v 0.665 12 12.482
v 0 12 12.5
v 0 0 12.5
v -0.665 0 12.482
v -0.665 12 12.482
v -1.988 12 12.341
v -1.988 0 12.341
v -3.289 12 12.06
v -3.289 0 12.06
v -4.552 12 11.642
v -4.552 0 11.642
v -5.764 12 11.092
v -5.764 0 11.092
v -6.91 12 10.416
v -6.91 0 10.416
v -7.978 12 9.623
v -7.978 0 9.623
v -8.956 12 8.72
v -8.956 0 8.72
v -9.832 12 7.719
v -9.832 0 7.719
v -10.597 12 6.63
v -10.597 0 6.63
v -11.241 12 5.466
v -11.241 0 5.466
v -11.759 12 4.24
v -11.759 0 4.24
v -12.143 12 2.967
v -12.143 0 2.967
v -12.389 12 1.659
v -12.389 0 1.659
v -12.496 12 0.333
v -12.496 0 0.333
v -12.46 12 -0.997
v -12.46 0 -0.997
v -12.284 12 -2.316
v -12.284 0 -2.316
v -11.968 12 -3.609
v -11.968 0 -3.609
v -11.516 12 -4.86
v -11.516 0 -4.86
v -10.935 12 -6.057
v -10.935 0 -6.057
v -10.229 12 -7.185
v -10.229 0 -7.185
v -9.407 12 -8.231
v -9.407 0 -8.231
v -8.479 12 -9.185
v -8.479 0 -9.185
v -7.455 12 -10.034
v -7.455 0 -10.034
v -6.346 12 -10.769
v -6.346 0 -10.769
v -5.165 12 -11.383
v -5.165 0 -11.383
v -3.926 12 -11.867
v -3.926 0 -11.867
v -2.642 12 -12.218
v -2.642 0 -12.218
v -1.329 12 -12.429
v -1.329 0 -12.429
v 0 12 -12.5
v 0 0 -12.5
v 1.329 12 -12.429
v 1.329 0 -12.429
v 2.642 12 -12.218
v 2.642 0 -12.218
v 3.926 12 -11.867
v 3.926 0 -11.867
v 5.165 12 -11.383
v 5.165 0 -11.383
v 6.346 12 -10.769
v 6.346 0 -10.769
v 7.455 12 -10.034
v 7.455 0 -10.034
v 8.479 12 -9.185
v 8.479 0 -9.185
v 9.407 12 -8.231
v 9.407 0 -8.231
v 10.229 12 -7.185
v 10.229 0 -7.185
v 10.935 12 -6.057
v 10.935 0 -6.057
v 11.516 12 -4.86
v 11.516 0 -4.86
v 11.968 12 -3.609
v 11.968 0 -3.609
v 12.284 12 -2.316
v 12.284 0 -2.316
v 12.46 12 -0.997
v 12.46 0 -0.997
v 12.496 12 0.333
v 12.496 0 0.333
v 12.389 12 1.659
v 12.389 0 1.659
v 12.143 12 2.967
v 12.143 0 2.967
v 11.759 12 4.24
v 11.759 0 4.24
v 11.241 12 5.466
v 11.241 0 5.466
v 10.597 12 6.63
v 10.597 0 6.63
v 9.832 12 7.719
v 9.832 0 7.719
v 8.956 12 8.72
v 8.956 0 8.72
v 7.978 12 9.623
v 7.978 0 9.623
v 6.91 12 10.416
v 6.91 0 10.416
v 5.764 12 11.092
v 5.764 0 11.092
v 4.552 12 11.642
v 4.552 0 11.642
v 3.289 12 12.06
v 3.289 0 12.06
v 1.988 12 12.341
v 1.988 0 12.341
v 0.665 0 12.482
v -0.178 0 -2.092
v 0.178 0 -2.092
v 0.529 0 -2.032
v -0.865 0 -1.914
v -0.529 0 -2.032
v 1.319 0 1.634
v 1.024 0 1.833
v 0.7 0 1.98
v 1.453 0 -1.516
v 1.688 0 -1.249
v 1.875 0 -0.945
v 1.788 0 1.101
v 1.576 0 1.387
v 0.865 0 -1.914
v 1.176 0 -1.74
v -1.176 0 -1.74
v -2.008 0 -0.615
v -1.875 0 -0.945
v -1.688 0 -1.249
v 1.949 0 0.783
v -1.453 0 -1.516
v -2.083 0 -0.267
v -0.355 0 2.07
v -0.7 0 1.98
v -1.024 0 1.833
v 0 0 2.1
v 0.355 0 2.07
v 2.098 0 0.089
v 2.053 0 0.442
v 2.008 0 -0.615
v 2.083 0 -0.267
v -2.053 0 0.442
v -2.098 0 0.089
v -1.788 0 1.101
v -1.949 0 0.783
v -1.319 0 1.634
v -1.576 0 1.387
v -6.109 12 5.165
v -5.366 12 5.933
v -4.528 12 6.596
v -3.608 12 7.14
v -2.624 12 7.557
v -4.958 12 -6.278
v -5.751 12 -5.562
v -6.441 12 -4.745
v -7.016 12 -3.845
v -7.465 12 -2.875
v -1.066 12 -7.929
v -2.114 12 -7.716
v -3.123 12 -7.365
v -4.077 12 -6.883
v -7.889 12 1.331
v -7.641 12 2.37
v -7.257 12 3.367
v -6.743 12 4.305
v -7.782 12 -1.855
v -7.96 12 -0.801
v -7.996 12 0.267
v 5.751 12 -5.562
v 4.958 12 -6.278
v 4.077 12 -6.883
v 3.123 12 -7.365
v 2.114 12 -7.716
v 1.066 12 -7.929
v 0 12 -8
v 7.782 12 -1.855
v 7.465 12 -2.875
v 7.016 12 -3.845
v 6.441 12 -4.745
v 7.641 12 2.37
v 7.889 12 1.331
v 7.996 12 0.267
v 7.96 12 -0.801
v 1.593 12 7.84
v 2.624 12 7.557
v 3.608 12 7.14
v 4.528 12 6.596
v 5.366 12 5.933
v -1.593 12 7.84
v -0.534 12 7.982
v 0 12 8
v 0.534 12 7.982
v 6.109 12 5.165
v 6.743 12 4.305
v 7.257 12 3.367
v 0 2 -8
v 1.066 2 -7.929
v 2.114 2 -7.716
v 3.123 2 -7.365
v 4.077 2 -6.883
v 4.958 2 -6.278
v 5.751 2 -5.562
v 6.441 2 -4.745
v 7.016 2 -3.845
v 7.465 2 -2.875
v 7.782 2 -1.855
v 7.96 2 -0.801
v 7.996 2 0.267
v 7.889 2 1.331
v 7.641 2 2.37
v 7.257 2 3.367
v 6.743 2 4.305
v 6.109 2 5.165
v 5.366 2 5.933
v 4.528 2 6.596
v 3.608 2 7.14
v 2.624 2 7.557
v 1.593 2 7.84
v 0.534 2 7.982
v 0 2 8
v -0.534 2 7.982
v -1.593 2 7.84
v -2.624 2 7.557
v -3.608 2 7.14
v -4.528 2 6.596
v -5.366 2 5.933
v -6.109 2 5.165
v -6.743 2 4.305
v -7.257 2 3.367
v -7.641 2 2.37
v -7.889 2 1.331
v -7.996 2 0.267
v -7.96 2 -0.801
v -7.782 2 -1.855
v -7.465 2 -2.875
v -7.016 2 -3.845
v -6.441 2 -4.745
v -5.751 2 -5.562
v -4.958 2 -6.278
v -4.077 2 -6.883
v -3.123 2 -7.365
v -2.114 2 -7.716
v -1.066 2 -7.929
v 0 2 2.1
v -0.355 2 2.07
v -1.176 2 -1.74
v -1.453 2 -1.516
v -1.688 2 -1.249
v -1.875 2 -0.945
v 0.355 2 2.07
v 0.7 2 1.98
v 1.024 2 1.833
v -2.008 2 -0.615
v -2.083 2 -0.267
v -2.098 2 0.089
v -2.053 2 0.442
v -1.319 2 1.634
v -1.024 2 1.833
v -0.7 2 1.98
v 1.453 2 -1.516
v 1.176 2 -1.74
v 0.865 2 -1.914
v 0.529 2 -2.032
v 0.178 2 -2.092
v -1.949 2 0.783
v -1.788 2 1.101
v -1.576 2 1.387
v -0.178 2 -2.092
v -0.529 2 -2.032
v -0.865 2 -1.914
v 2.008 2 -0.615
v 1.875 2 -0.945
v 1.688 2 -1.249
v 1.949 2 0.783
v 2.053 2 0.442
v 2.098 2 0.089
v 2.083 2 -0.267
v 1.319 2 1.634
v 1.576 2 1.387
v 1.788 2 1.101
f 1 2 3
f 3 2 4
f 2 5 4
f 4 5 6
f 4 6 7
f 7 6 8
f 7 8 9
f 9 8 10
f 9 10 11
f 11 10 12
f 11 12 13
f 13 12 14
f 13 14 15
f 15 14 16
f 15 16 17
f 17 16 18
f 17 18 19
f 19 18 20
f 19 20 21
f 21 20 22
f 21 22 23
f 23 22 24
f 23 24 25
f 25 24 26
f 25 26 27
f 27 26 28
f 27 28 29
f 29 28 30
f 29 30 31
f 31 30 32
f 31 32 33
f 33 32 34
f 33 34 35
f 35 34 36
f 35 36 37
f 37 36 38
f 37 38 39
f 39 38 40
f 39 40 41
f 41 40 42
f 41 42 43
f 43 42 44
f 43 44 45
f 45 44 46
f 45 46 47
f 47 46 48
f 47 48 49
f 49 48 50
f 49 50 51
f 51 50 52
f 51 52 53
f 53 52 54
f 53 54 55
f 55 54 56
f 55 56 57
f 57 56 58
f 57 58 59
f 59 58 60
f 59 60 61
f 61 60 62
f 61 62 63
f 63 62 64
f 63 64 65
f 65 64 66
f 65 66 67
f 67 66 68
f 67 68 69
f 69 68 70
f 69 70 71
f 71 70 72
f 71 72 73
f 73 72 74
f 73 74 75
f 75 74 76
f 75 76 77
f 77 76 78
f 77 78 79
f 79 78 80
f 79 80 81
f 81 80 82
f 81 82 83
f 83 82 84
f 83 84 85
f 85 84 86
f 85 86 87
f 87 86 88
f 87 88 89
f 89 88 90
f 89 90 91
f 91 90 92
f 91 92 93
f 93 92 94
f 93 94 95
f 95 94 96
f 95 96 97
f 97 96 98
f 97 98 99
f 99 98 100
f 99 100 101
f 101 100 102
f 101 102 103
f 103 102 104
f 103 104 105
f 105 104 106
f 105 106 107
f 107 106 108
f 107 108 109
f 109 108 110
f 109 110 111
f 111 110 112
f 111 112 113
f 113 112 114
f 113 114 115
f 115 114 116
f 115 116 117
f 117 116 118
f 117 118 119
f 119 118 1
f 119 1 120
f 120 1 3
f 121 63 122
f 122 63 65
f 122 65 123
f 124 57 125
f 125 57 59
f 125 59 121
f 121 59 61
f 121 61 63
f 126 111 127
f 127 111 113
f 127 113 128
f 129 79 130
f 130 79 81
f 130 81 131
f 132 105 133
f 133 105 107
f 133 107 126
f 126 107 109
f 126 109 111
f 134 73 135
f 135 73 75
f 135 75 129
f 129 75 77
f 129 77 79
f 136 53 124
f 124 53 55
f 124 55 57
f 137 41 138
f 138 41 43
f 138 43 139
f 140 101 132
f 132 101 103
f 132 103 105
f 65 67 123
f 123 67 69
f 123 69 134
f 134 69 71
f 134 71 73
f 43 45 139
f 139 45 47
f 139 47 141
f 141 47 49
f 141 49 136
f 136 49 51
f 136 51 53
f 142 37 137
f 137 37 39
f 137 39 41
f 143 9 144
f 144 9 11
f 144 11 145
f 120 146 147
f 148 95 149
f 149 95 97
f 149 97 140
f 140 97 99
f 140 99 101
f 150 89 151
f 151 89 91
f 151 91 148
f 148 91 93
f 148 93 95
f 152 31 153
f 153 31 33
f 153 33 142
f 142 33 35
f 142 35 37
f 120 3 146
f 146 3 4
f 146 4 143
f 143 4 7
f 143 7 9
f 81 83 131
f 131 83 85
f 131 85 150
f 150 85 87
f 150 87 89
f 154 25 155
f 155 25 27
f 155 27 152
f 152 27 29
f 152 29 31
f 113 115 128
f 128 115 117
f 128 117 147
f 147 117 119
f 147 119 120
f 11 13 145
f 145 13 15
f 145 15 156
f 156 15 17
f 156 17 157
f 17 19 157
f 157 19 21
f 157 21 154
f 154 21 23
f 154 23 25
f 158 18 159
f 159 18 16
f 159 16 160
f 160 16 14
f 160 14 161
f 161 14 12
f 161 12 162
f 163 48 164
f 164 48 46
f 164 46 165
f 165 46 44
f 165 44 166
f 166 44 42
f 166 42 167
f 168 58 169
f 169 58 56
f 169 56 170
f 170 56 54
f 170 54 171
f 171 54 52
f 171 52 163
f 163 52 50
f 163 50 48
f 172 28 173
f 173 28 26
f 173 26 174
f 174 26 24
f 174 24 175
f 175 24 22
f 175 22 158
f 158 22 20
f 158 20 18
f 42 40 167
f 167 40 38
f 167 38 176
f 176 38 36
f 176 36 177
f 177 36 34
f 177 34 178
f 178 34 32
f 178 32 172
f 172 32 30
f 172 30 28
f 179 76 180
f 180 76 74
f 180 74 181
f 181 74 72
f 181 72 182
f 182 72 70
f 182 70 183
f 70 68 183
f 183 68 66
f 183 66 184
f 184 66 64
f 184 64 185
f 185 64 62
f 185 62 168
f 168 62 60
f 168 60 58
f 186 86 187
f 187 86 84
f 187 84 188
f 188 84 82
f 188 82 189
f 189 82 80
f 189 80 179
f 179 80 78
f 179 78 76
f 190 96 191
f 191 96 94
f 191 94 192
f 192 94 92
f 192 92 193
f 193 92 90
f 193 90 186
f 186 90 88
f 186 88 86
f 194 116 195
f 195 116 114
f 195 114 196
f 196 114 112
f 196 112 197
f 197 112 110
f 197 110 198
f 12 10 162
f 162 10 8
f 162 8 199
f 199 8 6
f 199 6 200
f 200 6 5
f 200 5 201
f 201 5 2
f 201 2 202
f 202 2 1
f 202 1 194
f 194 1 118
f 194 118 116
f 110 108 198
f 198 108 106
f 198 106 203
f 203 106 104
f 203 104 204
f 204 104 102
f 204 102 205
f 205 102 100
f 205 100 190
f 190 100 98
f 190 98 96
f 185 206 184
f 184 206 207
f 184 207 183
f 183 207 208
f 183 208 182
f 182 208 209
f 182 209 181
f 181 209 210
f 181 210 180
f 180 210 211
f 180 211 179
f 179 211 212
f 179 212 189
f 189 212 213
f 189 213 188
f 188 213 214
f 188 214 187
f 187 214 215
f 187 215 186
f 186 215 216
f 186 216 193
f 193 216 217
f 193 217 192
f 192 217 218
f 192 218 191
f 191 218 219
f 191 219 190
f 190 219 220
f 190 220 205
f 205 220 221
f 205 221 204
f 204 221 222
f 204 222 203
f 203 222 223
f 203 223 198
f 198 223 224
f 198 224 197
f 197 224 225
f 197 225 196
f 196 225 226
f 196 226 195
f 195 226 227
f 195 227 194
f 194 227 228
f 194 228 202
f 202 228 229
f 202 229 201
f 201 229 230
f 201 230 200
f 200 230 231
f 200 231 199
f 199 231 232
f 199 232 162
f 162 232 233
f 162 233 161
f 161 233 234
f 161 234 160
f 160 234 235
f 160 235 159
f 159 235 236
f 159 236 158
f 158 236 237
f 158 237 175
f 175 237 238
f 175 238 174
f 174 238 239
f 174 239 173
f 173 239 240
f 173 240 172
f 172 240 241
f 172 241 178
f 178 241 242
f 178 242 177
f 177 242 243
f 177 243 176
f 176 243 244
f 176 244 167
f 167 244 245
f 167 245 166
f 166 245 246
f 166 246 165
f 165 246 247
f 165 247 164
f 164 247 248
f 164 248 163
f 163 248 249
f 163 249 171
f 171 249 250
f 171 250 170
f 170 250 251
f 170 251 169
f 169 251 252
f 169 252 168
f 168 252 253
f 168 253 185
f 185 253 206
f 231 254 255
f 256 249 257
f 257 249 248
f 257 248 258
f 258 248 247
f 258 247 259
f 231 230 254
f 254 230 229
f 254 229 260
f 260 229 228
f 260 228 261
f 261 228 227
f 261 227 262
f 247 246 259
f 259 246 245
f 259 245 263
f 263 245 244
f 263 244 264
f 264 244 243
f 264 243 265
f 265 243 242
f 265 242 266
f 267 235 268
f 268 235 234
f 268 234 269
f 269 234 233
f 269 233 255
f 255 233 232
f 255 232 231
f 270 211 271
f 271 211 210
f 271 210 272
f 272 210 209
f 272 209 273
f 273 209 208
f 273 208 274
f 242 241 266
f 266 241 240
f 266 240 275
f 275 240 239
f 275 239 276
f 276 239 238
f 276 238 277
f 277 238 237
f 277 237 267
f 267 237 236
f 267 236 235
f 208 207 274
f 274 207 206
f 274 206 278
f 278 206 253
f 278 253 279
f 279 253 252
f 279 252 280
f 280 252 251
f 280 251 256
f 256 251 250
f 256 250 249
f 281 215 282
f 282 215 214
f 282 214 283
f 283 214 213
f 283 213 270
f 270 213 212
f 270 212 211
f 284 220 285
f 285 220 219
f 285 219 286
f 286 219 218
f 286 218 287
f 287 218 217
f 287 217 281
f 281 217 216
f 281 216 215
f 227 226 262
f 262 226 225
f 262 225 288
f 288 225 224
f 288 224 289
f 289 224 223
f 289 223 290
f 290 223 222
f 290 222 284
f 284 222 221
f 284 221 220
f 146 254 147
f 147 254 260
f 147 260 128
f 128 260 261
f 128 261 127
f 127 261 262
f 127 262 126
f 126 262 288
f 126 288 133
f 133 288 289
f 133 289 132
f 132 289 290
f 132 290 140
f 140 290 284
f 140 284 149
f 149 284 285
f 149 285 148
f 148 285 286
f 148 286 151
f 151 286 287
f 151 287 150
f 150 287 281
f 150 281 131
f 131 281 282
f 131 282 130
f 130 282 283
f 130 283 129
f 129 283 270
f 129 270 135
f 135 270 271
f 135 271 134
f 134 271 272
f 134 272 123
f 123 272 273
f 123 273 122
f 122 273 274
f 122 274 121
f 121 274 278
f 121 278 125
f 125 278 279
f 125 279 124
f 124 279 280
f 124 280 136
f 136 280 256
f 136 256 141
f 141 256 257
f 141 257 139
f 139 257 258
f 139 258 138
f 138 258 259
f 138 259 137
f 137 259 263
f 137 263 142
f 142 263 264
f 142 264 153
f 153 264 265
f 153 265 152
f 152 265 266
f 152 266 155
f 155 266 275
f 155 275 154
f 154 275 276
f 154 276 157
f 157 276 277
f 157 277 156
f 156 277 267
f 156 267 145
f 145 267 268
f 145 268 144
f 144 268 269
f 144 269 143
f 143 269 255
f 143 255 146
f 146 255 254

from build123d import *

# Parameters (mm, degrees)
SKETCH1_R           = 12.5
BOSS_EXTRUDE1_DEPTH = 2
SKETCH2_R           = 12.5
SKETCH2_R_2         = 8
BOSS_EXTRUDE2_DEPTH = 10
SKETCH3_R           = 2.1
CUT_EXTRUDE1_DEPTH  = 10


with BuildPart() as part:
    # Sketch1 → Boss-Extrude1 (new body)
    with BuildSketch(Plane(origin=(0, 0, 0), x_dir=(1, 0, 0), z_dir=(0, 1, 0))):
        Circle(SKETCH1_R)
    extrude(amount=BOSS_EXTRUDE1_DEPTH)

    # Sketch2 → Boss-Extrude2 (add)
    with BuildSketch(Plane(origin=(0, 2, 0), x_dir=(1, 0, 0), z_dir=(0, 1, 0))):
        Circle(SKETCH2_R)
        Circle(SKETCH2_R_2, mode=Mode.SUBTRACT)
    extrude(amount=BOSS_EXTRUDE2_DEPTH)

    # Sketch3 → Cut-Extrude1 (cut)
    with BuildSketch(Plane(origin=(0, 2, 0), x_dir=(1, 0, 0), z_dir=(0, 1, 0))):
        Circle(SKETCH3_R)
    extrude(amount=-CUT_EXTRUDE1_DEPTH, mode=Mode.SUBTRACT)


solid = part.part
